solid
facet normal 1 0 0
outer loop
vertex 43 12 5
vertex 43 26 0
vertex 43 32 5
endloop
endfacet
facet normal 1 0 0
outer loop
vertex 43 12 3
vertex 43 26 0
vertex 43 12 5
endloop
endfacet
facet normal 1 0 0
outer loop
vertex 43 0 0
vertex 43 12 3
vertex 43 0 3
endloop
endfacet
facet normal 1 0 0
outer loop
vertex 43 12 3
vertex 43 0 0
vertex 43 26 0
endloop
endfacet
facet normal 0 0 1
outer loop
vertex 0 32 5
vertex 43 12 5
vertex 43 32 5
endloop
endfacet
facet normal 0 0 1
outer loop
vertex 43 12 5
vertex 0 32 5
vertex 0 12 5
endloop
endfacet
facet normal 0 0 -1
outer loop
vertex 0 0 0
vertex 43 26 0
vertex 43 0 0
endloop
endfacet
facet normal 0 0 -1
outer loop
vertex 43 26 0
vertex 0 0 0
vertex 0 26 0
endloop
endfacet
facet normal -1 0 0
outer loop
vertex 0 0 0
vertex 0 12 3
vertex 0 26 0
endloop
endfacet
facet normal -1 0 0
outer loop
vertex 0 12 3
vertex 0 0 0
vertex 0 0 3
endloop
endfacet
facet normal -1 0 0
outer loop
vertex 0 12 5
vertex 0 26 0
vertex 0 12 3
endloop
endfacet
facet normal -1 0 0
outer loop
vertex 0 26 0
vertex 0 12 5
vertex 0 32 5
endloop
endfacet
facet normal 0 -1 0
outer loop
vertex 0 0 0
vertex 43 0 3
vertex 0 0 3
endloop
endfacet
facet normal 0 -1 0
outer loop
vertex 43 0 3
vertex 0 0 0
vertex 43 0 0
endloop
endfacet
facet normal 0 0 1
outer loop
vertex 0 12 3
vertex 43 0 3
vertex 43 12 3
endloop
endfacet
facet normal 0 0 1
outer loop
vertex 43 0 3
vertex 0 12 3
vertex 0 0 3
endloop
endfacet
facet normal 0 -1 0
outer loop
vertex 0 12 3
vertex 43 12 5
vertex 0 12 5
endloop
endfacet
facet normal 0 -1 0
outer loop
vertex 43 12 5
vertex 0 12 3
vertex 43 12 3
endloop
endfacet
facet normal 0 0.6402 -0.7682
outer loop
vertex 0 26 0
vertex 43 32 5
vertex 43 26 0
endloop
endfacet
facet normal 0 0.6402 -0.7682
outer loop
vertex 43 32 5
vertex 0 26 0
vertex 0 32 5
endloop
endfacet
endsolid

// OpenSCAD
height = 5;
width = 43;
depth = 32;

cut_depth = 12;
cut_height = 2;

trim_depth = 6;

module triangle(x, y, z) {
    polyhedron(
        points=[[0,0,0],[x,0,0],[x,y,0],[0,y,0],[0,y,z],[x,y,z]],
        faces=[[0,1,2,3],[5,4,3,2],[0,4,5,1],[0,3,4],[5,2,1]]
    );
}

difference() {
	cube([width, depth, height]);
	translate([0, 0, height-cut_height]) cube([width, cut_depth, cut_height]);
	translate([0, depth-trim_depth, 0]) triangle(width, trim_depth, height);
}
